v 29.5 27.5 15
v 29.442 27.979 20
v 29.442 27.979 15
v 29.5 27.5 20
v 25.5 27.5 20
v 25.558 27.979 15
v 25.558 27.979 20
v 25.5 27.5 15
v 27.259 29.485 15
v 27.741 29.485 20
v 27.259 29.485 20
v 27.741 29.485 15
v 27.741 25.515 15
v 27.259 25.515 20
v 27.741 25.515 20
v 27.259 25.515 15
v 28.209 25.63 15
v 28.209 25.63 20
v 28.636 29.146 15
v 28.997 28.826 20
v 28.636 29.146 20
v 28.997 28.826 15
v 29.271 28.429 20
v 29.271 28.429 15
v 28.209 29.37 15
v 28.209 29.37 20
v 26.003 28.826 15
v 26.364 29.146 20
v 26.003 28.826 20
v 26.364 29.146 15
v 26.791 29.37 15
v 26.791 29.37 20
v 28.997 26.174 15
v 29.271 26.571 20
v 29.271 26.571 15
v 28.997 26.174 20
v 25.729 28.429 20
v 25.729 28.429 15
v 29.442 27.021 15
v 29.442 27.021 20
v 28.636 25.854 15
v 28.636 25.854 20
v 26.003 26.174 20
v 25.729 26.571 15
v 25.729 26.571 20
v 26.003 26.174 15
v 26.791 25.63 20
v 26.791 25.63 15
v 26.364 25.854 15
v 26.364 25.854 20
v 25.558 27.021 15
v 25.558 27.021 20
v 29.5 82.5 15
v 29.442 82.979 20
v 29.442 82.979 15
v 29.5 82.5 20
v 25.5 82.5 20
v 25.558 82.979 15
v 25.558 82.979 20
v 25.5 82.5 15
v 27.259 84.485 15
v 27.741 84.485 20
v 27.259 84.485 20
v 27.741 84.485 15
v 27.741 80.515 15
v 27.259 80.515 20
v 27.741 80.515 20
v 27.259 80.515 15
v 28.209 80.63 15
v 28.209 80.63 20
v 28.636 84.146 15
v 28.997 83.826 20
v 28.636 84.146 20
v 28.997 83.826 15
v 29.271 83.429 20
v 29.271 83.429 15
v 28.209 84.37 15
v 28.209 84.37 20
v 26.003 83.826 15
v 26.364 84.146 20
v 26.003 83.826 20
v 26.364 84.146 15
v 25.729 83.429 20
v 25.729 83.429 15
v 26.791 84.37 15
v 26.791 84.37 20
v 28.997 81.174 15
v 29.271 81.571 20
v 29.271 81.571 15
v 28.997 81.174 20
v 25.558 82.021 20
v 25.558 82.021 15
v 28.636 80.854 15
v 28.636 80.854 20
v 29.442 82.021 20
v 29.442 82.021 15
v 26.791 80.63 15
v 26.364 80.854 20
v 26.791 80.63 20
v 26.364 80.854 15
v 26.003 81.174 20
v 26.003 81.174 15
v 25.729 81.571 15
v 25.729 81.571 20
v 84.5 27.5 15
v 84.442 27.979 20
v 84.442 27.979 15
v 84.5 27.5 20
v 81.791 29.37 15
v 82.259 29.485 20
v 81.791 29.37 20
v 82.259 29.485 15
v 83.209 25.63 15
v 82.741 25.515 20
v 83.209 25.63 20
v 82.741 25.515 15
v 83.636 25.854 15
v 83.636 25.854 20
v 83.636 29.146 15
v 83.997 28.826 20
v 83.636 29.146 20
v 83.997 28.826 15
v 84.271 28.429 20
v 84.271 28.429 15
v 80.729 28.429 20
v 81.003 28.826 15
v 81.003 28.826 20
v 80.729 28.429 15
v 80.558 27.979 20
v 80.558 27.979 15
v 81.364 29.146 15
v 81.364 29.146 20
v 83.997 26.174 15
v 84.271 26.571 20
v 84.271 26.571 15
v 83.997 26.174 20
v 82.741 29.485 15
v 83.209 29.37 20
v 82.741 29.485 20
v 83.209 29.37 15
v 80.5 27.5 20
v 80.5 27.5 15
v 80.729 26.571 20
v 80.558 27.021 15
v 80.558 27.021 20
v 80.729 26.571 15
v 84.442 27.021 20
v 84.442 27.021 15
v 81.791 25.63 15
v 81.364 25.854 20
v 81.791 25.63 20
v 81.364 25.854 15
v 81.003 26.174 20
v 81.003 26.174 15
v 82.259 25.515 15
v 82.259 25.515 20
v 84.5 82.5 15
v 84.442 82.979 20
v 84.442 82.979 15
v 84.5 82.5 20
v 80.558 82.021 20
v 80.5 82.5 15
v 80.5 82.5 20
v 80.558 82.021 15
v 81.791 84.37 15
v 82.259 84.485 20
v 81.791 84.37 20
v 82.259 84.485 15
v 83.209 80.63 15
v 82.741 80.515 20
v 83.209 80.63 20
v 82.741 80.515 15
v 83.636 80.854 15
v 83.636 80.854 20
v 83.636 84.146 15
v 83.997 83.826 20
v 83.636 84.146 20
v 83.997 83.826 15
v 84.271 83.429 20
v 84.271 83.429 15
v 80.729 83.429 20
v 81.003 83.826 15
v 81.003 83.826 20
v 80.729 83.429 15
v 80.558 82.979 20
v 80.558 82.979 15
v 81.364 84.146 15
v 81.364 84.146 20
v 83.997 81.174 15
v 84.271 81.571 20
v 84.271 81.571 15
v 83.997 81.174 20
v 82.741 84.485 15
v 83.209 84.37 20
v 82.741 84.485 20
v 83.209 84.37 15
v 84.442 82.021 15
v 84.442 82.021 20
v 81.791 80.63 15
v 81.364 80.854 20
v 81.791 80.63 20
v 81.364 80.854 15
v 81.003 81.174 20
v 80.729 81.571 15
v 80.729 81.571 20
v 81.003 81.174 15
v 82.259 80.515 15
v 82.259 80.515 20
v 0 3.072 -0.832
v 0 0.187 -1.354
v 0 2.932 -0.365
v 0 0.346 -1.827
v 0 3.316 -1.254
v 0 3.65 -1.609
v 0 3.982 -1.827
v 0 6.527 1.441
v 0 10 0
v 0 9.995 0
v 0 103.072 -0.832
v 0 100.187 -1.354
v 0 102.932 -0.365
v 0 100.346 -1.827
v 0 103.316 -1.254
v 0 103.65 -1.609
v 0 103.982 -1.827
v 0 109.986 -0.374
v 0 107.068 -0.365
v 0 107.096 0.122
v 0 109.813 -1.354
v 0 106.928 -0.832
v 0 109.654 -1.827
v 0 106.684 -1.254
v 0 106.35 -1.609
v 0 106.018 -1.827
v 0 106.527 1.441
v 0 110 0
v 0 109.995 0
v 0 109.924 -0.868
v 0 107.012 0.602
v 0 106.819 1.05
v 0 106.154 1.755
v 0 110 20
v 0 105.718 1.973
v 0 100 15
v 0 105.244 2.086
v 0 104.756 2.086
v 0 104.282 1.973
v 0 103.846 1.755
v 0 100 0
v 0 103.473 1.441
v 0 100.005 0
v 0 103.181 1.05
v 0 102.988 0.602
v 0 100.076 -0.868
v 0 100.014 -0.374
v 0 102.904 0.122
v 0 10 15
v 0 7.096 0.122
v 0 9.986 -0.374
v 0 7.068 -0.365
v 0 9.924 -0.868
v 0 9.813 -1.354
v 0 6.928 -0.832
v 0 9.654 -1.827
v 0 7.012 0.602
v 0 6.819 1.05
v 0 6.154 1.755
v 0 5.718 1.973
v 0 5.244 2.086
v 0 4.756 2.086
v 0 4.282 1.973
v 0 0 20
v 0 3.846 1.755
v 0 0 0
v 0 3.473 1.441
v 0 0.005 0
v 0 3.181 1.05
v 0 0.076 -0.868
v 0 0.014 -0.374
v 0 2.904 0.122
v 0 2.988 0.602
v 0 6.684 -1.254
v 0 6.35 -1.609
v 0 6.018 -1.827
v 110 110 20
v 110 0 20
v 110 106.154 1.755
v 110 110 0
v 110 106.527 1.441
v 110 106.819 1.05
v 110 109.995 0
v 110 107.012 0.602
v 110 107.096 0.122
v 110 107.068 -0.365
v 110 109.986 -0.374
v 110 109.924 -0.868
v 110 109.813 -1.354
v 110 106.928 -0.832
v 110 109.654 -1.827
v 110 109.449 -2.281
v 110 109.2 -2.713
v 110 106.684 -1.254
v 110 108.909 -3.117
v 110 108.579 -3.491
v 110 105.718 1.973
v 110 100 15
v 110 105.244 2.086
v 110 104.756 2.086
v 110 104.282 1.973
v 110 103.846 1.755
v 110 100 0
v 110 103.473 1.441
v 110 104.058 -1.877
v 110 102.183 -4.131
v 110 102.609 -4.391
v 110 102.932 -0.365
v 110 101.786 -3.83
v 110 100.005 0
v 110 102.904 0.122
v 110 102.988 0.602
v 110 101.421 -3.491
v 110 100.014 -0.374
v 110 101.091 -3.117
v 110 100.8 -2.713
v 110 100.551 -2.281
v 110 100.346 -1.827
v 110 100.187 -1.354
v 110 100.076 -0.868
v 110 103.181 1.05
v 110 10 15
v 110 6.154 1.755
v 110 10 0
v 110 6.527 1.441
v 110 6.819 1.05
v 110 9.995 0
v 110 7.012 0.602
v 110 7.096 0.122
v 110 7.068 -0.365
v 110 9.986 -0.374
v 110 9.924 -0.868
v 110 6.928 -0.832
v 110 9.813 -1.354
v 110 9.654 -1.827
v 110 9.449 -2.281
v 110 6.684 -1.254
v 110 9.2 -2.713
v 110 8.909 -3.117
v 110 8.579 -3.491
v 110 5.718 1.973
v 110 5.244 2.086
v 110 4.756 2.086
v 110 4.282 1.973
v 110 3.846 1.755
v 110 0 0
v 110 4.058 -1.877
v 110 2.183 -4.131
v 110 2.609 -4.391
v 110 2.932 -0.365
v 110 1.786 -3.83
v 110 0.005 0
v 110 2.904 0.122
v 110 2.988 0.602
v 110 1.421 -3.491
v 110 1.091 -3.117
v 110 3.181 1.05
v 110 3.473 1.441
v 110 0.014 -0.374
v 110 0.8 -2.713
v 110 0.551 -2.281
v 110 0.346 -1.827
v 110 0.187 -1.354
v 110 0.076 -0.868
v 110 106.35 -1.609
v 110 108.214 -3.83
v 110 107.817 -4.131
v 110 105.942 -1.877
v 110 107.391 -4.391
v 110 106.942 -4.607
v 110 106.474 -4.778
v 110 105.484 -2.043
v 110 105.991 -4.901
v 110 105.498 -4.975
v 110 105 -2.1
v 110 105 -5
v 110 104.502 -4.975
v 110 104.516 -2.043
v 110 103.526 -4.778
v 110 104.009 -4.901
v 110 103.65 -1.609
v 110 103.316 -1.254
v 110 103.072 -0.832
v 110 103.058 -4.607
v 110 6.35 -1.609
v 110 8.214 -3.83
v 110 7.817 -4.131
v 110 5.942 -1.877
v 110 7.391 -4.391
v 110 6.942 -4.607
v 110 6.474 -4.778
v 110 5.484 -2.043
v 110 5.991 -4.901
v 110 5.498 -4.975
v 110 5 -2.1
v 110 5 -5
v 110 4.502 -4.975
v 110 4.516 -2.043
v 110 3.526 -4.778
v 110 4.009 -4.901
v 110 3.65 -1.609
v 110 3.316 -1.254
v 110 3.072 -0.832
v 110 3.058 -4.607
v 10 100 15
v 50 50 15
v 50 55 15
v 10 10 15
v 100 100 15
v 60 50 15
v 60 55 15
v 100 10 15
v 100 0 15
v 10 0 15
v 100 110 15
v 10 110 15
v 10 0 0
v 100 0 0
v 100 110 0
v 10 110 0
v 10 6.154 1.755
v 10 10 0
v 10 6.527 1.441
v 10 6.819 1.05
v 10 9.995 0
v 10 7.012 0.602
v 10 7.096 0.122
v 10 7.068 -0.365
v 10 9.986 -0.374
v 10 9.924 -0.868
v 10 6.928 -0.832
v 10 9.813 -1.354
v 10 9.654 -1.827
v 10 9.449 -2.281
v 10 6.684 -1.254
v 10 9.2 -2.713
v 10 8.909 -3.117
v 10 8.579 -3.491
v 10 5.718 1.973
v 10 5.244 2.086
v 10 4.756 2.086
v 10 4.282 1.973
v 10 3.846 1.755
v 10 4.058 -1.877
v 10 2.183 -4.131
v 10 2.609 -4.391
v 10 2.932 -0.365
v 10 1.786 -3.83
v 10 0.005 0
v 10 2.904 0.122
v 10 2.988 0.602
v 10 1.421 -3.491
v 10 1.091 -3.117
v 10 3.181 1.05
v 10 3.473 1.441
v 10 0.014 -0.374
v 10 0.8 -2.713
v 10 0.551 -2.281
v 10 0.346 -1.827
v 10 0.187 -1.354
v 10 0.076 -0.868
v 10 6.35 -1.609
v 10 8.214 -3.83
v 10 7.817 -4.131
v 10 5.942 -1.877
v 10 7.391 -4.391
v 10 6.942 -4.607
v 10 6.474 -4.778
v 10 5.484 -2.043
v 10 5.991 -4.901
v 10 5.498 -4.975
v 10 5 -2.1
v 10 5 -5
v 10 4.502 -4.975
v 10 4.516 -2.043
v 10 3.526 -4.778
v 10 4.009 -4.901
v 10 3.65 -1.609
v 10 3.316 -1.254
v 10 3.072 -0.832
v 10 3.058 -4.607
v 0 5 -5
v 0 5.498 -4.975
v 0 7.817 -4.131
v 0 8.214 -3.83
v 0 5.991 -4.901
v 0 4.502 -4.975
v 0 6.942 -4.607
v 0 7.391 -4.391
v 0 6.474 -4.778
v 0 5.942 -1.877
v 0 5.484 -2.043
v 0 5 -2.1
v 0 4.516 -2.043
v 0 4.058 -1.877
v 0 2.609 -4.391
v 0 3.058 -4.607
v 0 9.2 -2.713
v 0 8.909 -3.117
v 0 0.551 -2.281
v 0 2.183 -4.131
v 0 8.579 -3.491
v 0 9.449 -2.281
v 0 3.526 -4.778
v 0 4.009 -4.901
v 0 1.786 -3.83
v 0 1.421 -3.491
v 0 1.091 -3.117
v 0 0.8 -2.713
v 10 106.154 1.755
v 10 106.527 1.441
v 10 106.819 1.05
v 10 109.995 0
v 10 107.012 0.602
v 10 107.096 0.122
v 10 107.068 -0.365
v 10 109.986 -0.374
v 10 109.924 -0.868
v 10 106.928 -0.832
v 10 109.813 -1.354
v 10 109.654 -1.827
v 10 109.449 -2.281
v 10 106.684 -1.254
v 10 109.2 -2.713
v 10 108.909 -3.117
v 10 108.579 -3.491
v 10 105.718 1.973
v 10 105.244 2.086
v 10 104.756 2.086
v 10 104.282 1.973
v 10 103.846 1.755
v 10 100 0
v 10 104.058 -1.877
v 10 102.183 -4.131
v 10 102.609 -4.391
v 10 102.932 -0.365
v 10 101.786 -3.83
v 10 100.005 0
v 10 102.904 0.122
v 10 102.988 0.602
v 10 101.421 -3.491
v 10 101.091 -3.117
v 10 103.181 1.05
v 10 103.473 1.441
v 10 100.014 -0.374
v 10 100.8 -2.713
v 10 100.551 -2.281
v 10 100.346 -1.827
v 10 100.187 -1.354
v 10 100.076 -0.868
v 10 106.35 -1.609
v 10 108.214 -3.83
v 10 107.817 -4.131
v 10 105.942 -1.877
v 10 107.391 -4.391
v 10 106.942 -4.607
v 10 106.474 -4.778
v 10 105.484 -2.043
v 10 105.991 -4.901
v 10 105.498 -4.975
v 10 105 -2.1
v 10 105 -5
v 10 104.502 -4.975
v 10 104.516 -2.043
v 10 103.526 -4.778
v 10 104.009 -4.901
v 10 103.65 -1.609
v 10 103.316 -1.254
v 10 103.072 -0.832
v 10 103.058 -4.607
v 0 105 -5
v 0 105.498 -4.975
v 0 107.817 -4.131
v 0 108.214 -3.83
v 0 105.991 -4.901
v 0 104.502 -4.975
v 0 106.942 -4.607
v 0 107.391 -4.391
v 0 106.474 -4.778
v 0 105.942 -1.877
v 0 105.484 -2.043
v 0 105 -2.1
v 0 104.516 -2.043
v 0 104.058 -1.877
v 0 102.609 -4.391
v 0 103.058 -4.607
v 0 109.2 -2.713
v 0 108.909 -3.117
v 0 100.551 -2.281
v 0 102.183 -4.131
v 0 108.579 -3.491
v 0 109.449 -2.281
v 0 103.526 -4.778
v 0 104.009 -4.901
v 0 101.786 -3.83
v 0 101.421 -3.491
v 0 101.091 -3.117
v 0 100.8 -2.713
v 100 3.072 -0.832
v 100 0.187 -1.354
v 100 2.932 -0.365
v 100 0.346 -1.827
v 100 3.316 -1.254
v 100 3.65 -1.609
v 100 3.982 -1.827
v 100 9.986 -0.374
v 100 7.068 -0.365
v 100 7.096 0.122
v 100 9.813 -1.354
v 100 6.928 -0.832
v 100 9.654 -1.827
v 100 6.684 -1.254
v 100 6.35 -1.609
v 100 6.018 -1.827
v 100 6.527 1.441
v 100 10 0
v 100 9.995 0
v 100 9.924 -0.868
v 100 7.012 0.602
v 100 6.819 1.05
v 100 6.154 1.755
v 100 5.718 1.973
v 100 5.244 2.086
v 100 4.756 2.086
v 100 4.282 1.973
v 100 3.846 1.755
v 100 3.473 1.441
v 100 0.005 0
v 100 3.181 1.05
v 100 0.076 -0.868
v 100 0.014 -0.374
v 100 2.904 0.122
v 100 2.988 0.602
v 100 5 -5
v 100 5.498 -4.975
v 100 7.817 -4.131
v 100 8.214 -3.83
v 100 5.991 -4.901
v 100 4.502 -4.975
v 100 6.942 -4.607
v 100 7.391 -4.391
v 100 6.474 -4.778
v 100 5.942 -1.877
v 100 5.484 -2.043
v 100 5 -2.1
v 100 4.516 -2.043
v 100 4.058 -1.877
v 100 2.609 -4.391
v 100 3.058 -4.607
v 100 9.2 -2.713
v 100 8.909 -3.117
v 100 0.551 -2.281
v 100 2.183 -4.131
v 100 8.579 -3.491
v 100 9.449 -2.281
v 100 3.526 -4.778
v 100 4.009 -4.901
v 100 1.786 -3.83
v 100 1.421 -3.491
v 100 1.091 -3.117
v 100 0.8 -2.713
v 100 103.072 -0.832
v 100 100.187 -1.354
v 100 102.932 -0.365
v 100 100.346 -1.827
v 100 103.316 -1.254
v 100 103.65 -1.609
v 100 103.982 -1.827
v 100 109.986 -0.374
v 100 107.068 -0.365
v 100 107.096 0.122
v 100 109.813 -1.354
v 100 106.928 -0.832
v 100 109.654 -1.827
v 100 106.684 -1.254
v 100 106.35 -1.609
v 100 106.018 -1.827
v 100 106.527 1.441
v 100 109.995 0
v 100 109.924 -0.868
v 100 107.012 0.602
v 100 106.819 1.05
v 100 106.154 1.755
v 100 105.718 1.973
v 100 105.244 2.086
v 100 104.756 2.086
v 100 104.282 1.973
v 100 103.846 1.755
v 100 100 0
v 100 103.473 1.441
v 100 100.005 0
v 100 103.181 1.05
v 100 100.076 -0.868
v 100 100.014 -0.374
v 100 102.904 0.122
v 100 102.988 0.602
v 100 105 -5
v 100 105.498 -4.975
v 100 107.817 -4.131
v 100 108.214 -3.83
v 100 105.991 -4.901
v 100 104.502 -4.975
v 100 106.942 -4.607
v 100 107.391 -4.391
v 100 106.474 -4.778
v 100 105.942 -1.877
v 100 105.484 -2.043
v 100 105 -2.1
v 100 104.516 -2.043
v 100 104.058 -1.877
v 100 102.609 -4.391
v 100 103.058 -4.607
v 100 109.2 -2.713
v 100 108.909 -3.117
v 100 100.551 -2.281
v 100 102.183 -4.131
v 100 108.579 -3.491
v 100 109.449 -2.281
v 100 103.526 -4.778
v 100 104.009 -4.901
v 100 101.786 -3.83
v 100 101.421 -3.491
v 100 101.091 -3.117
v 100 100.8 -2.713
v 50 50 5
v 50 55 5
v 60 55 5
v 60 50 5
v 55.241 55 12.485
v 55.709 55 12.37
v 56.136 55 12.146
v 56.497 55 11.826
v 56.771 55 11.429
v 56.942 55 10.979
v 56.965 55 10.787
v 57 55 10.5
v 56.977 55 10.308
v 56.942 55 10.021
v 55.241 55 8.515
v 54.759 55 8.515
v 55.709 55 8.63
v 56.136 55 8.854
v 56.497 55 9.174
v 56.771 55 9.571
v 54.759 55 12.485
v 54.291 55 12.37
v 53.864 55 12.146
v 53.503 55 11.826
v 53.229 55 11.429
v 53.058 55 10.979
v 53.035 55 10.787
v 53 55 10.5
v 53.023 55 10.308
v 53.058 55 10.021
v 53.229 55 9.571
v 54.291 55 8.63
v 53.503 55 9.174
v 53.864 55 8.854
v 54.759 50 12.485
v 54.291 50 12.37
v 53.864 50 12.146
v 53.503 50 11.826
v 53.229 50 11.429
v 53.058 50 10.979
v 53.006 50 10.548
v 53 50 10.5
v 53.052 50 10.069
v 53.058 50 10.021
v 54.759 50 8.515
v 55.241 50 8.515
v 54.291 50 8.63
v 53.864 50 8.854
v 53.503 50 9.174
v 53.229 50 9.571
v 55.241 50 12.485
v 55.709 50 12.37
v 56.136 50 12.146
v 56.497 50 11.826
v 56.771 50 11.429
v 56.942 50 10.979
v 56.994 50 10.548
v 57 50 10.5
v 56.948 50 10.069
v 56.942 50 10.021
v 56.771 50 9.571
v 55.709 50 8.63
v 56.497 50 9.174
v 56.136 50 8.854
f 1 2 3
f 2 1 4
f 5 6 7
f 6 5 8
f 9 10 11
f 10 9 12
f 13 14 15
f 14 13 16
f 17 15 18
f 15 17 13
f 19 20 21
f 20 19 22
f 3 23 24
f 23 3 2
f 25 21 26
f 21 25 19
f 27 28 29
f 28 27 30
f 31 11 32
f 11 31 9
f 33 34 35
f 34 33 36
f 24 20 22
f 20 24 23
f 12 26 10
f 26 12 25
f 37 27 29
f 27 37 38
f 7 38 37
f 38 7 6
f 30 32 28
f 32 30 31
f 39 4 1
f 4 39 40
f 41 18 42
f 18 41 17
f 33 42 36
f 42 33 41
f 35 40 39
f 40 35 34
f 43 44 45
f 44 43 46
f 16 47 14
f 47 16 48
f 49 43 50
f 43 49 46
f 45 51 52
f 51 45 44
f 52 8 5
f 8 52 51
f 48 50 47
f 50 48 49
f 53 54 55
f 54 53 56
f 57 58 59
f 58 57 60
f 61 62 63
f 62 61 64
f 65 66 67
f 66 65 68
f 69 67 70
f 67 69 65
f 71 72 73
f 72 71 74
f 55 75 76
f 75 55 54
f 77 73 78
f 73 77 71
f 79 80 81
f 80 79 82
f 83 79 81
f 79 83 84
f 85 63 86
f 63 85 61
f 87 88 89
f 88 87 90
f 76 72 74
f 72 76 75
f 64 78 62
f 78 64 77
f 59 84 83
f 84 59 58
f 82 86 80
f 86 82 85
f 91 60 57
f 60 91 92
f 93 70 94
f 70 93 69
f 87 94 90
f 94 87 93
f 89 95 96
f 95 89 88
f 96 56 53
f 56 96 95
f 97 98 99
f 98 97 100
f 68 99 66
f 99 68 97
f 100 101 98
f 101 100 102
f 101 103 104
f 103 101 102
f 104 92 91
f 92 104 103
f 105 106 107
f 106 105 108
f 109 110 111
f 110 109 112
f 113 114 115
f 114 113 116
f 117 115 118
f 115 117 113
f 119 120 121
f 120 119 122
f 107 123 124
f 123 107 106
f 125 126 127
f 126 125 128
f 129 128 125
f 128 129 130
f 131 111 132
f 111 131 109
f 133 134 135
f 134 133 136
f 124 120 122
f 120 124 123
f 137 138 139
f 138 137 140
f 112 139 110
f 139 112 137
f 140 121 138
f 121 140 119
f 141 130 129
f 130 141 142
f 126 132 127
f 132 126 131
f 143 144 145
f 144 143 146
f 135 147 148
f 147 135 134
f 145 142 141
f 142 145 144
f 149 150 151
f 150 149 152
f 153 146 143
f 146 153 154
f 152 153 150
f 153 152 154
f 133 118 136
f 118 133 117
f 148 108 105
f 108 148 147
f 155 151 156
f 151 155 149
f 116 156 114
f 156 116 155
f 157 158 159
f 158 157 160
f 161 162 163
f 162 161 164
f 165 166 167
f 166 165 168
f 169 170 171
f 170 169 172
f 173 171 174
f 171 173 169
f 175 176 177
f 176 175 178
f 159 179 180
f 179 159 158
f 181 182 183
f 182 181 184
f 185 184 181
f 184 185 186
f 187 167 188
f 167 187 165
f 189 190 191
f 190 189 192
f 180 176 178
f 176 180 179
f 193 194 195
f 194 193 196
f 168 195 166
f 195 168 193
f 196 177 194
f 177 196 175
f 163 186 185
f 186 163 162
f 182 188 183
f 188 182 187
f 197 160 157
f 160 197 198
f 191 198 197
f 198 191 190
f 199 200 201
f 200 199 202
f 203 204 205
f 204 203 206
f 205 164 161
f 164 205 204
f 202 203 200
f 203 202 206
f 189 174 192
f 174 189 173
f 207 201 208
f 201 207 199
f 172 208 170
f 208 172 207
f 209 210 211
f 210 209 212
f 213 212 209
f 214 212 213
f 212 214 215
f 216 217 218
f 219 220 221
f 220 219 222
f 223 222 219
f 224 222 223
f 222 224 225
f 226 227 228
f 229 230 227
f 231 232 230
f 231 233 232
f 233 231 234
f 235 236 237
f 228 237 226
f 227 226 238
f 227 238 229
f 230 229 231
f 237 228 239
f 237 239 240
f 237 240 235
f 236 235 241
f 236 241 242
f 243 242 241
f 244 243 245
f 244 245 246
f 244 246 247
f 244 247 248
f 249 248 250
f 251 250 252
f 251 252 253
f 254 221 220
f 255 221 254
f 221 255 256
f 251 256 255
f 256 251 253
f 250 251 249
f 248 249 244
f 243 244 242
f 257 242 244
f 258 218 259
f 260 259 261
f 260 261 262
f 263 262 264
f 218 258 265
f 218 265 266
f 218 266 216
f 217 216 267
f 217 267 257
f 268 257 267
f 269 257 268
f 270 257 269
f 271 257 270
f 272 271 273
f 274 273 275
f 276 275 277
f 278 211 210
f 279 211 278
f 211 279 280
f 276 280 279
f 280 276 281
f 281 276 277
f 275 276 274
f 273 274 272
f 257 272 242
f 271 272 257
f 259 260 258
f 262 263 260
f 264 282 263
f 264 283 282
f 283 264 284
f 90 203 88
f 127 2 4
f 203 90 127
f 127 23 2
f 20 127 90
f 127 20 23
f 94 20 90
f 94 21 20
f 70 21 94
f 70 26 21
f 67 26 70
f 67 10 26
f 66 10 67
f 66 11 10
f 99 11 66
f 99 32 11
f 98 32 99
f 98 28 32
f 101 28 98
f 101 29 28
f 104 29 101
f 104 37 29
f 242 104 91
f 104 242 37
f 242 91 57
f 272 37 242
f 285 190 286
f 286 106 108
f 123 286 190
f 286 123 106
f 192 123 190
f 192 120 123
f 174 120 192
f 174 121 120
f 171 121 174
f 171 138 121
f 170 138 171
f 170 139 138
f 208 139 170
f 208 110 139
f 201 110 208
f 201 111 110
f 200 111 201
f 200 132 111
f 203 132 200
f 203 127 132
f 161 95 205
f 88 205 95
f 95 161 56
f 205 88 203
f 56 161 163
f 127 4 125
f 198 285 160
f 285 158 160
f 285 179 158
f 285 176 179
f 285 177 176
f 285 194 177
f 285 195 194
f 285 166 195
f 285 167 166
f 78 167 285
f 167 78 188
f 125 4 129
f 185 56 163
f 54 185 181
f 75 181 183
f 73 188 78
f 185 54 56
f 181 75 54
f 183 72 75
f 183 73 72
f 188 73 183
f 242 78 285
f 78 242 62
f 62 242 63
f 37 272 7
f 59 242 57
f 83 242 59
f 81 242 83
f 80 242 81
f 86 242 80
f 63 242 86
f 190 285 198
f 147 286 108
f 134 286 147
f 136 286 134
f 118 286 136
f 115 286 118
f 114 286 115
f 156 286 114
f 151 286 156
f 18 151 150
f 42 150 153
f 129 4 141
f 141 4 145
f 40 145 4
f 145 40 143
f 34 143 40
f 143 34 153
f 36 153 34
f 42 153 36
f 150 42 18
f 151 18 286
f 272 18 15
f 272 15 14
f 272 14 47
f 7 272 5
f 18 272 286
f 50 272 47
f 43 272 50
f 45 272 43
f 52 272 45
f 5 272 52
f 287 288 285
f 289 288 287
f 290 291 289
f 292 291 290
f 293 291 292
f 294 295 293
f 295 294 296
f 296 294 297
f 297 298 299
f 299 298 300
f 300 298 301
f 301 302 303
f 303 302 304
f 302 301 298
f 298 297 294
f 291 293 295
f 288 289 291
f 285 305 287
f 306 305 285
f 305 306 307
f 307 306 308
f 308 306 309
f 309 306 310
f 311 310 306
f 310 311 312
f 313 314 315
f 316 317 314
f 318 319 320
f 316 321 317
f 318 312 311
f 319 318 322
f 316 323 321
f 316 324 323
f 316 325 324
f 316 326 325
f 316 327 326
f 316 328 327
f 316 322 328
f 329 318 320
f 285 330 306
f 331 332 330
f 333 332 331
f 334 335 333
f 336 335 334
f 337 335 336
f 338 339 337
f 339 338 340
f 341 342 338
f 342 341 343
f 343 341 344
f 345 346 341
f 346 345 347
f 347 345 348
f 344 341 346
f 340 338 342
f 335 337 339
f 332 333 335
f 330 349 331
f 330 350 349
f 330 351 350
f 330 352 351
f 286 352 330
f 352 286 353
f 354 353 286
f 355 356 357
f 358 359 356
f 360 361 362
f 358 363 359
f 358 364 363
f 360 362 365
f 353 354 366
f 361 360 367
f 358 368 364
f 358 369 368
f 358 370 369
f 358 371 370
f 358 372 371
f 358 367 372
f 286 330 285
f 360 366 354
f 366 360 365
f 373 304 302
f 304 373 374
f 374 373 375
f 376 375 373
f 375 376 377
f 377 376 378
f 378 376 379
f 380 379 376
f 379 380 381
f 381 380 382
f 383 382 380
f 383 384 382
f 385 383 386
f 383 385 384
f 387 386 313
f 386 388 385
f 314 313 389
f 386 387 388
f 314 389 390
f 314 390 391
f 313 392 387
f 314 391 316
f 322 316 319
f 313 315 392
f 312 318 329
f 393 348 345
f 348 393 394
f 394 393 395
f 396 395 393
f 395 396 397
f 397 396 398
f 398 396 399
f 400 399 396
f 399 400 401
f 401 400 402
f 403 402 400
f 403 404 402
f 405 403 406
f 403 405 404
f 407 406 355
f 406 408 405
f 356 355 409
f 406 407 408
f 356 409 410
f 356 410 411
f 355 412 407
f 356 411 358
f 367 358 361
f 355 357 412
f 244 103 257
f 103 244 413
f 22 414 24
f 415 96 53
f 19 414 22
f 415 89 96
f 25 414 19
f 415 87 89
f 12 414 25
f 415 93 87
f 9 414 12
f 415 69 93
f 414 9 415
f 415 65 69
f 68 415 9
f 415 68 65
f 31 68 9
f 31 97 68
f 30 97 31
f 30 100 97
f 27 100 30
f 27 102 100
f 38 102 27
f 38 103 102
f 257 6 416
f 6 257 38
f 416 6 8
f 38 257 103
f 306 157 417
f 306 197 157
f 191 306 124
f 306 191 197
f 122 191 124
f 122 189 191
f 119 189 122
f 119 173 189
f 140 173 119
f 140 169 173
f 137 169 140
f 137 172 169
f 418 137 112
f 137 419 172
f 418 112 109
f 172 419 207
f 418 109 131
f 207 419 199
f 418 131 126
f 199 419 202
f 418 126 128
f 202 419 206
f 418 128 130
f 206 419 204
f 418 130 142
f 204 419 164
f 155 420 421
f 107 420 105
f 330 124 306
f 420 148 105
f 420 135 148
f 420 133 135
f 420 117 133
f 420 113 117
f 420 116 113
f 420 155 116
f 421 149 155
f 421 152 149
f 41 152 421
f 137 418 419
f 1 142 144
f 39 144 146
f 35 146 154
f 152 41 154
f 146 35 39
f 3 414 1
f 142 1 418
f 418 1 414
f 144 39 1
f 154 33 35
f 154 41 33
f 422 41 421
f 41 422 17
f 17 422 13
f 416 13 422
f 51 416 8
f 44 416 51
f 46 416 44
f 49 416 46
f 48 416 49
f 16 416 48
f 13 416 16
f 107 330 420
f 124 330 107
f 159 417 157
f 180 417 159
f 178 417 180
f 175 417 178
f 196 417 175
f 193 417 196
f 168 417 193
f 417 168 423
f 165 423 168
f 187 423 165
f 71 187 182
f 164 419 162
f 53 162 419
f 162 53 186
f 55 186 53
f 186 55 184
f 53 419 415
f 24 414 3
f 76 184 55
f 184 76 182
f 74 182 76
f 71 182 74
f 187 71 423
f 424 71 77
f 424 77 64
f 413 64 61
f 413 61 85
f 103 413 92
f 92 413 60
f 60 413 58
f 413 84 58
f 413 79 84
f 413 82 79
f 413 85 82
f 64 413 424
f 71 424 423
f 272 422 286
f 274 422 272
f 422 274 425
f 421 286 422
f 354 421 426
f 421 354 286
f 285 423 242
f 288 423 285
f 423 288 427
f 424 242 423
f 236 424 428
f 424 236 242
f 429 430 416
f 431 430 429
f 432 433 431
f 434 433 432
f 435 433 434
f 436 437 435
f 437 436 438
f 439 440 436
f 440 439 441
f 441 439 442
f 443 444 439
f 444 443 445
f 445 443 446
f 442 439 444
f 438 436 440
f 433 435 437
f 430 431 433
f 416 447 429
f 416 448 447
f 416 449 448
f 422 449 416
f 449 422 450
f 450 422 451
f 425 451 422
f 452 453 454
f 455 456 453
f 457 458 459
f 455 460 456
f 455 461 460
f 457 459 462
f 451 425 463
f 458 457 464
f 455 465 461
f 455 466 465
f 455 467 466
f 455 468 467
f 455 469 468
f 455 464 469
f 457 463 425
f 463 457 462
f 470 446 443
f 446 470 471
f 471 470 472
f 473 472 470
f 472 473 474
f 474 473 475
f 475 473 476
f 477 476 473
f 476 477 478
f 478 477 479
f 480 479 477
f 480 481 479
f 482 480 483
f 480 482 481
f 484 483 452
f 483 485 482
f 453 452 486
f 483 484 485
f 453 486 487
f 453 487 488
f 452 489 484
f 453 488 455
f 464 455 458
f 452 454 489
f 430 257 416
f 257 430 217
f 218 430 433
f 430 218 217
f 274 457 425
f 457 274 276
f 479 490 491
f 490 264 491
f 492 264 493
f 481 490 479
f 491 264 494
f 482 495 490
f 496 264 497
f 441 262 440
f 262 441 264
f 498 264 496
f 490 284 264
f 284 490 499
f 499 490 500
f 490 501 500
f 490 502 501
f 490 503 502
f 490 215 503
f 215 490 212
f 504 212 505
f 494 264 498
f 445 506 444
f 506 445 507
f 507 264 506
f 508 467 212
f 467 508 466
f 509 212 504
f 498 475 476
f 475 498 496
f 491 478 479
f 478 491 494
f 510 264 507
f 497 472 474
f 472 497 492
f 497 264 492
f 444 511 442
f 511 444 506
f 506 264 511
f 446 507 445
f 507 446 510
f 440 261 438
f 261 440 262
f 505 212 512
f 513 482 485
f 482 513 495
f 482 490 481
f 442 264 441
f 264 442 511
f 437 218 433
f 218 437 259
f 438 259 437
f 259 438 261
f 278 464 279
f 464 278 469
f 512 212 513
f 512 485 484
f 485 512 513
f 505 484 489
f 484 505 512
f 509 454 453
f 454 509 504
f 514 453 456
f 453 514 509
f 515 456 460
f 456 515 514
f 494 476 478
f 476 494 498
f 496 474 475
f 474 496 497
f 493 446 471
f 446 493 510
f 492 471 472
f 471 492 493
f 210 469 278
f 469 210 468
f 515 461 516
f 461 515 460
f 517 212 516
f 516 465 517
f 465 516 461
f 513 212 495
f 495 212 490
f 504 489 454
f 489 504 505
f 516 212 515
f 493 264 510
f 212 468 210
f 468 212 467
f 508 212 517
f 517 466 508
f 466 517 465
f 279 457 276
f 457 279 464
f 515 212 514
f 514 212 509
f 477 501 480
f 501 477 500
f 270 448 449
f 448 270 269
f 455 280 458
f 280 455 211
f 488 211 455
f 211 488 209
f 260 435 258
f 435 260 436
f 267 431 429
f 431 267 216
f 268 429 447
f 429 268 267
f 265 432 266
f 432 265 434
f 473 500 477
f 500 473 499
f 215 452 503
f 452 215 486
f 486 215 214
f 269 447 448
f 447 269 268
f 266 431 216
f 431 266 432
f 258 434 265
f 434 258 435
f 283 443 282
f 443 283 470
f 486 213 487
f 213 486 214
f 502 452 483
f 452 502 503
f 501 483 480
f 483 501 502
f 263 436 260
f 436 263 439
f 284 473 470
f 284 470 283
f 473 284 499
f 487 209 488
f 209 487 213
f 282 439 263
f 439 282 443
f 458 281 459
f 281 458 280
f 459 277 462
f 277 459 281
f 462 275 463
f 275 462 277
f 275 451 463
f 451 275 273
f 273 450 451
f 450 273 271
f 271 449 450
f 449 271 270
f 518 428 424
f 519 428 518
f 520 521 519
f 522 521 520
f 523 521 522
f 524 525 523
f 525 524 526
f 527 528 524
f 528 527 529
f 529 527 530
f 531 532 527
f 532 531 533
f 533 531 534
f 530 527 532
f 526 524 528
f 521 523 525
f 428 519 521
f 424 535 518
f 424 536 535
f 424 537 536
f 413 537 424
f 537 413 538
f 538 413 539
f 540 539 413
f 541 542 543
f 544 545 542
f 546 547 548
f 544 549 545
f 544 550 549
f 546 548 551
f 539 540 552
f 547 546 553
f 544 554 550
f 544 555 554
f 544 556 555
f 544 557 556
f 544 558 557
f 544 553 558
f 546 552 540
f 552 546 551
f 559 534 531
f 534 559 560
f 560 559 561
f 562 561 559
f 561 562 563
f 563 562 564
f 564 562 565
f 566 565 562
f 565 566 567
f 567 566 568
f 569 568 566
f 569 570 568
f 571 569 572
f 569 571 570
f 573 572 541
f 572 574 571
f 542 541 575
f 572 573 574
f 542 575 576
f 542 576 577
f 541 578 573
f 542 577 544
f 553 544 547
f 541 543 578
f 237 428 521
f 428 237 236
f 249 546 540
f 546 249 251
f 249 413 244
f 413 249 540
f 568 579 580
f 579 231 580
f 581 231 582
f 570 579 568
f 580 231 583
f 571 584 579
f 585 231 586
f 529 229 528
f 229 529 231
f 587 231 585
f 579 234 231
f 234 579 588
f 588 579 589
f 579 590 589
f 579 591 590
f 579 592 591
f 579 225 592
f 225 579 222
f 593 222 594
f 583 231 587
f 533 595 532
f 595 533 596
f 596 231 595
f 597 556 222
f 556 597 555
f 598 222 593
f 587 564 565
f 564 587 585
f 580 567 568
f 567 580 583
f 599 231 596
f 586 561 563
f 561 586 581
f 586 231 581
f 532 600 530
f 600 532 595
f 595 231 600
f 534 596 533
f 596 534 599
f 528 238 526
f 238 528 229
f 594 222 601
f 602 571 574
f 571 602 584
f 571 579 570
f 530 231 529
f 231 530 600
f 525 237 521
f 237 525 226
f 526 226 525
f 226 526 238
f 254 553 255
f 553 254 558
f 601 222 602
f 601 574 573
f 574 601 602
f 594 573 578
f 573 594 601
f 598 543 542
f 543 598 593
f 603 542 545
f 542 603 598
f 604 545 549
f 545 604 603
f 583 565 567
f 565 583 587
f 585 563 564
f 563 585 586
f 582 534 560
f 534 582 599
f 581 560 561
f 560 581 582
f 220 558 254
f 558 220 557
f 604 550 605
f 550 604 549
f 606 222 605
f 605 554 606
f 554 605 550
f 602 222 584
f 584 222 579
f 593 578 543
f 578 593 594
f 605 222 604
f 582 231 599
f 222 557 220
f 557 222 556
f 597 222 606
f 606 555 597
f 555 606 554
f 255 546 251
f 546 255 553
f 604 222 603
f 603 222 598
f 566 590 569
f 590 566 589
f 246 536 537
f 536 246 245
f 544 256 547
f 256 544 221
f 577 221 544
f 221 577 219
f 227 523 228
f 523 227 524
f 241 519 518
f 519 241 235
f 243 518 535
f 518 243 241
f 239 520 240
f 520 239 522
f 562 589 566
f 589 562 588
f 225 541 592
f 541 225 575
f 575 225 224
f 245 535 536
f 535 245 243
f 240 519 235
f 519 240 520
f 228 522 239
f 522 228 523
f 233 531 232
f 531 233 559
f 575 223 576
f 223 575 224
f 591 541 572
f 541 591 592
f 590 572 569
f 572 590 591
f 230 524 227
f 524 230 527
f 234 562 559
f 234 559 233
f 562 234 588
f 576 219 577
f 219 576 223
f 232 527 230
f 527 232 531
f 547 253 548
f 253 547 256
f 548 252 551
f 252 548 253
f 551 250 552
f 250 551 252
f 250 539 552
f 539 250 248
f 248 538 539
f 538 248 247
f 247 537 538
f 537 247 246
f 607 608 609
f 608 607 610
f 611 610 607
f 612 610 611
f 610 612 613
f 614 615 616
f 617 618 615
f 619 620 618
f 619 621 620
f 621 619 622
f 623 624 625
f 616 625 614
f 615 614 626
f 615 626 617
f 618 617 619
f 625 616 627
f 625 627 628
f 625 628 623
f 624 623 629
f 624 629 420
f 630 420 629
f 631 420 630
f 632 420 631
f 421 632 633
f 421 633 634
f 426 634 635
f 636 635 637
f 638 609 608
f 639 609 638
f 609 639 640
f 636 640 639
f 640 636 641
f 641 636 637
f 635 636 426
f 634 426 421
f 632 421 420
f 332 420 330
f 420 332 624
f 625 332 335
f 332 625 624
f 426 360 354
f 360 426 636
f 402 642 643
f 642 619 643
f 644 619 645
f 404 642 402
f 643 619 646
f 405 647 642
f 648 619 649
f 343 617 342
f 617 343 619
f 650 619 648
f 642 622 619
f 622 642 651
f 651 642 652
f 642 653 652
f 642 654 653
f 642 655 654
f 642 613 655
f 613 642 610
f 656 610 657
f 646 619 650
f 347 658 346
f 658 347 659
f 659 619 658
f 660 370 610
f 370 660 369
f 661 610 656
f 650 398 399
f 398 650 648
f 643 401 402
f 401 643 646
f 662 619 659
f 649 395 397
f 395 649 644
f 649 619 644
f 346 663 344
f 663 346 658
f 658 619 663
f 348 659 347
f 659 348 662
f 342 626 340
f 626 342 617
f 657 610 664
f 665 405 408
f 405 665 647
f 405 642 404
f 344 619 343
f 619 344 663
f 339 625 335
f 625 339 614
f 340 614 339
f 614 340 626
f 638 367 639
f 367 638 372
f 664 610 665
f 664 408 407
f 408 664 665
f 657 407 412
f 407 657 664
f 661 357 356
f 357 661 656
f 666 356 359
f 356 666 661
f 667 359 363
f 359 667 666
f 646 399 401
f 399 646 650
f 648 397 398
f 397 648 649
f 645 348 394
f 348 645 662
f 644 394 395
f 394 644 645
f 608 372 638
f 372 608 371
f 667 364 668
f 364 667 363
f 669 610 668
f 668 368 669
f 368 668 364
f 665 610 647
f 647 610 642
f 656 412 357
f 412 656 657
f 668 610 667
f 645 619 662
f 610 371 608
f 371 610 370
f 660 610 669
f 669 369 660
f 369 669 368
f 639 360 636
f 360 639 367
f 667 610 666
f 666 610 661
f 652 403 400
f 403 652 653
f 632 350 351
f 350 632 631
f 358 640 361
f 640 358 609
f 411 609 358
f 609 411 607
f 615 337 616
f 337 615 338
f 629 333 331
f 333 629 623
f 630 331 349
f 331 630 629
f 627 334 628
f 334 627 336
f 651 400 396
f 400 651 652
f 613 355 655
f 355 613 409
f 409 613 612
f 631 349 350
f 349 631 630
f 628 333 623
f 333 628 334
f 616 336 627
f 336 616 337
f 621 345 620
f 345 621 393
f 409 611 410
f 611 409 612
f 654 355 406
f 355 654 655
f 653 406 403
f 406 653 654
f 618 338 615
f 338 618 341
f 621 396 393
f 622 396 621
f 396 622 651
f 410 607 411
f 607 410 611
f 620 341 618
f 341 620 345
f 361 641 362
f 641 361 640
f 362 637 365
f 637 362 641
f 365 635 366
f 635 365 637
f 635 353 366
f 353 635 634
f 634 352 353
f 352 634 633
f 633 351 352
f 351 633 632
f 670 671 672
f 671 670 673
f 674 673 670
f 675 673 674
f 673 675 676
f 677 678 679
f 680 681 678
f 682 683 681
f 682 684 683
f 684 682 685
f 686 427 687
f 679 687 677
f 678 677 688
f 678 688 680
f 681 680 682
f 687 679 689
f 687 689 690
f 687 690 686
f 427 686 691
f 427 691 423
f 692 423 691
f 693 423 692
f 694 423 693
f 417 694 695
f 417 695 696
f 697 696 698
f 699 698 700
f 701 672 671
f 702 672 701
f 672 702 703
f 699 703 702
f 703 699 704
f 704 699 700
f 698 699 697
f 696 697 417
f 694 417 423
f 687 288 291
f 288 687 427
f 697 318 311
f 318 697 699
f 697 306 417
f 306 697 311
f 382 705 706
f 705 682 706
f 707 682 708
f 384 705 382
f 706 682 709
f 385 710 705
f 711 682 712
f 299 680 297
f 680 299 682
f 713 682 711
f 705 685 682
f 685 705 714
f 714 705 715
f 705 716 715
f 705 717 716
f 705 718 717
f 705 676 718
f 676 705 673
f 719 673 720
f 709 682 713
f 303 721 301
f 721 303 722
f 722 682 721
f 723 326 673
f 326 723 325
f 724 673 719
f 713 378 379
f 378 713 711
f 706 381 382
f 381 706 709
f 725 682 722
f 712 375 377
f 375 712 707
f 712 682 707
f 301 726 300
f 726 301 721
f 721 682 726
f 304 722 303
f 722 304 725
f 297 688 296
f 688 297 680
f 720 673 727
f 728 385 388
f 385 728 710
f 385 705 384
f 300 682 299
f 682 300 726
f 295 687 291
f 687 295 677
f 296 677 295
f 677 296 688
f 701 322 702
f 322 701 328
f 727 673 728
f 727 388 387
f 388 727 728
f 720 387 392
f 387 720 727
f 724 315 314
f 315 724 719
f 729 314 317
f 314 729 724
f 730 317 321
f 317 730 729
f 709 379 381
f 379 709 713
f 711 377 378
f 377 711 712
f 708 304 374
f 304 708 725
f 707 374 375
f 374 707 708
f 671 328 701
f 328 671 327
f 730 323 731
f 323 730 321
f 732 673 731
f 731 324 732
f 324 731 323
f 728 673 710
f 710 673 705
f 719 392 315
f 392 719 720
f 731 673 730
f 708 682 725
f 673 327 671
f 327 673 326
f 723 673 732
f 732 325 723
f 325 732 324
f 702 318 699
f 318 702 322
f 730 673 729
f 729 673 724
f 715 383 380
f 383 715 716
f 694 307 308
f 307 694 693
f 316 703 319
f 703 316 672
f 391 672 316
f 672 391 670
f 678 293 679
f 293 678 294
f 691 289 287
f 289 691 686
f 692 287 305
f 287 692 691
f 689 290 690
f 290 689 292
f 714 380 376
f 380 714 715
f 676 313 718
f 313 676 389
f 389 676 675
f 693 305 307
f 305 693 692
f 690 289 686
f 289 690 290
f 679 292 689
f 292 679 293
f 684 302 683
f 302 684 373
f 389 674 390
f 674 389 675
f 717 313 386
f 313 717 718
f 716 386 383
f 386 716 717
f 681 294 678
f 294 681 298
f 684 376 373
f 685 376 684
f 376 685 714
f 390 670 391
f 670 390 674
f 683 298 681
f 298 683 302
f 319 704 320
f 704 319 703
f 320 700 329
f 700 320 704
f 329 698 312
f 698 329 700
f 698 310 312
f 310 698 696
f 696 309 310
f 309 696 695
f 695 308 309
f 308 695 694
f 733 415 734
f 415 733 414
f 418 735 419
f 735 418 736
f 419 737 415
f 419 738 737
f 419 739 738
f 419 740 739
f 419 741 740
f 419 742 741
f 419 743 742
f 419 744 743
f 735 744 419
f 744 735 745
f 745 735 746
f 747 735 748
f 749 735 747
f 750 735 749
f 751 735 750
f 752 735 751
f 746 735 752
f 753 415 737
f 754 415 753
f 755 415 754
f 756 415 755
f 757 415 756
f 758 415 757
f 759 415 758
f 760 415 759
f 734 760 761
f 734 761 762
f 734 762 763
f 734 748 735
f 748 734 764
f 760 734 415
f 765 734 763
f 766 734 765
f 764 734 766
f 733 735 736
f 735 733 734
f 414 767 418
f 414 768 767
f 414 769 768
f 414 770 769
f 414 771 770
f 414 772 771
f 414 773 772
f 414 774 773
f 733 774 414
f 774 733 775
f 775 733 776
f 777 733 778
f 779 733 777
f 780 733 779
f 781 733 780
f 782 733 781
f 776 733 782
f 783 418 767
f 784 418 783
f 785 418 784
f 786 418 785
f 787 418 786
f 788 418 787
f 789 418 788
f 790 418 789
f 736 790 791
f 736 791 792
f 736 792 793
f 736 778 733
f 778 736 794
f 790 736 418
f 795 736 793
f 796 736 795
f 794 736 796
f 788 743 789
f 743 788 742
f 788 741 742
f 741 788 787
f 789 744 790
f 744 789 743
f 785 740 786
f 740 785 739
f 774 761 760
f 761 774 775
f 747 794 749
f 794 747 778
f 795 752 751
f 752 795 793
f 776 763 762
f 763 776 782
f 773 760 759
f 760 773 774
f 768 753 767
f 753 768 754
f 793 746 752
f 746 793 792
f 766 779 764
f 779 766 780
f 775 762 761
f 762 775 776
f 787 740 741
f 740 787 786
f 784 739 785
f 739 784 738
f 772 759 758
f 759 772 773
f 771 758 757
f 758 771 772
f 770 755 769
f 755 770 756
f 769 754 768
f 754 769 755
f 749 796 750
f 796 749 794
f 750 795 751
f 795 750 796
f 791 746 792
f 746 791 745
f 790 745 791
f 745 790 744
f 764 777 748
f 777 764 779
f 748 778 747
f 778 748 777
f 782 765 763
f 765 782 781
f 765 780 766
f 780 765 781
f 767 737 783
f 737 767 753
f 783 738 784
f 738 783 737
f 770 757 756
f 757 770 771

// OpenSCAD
module Bed(height=5, thickness=10, rod_separation=100, rod_radius=2, screw_radius=2,
            gap=15) {
                
    // Foot Module
    module Foot() {
        translate([thickness/2, thickness/2, -gap/2])
        difference() {
            union() {
                cube([thickness, thickness, gap], center=true);
                translate([-thickness/2, 0, -gap/2]) rotate([0, 90, 0]) 
                    cylinder(r=thickness/2, h=thickness);
            }
            translate([-thickness/2-1, 0, -gap/2]) rotate([0, 90, 0]) 
                    cylinder(r=1.05*rod_radius, h=thickness+2);
        }
    }
    
    
    translate([(rod_separation+thickness)/2, (rod_separation+thickness)/2, 
                gap+height/2]){
    
    // bed with holes
    difference() {
        cube([rod_separation+thickness, rod_separation+thickness, 
            height], center=true);
        for(x = [-(rod_separation+thickness)/4, (rod_separation+thickness)/4]) {
            for(y = [-(rod_separation+thickness)/4, (rod_separation+thickness)/4]) {
                translate([x, y, 0]) cylinder(r=screw_radius, h=height+2, 
                    center=true);
            }
        }
    }
    
    // place rod grabbers
    for(x = [-(rod_separation+thickness)/2, (rod_separation-thickness)/2]) {
        for(y = [-(rod_separation+thickness)/2, (rod_separation-thickness)/2]) {
            translate([x, y, -height/2]) Foot();
        }
    }
    
    //place string grabber
    difference() {
        translate([0, -thickness/4, -(height+thickness)/2]) 
            cube([thickness, thickness/2, thickness], center=true);
        translate([0,-1,-gap-height/2+10.5]) rotate([90, 0, 0])
            cylinder(r=2, h=thickness, center=true);
    }
    
}
}

Bed($fa=.5, $fs=.5);
